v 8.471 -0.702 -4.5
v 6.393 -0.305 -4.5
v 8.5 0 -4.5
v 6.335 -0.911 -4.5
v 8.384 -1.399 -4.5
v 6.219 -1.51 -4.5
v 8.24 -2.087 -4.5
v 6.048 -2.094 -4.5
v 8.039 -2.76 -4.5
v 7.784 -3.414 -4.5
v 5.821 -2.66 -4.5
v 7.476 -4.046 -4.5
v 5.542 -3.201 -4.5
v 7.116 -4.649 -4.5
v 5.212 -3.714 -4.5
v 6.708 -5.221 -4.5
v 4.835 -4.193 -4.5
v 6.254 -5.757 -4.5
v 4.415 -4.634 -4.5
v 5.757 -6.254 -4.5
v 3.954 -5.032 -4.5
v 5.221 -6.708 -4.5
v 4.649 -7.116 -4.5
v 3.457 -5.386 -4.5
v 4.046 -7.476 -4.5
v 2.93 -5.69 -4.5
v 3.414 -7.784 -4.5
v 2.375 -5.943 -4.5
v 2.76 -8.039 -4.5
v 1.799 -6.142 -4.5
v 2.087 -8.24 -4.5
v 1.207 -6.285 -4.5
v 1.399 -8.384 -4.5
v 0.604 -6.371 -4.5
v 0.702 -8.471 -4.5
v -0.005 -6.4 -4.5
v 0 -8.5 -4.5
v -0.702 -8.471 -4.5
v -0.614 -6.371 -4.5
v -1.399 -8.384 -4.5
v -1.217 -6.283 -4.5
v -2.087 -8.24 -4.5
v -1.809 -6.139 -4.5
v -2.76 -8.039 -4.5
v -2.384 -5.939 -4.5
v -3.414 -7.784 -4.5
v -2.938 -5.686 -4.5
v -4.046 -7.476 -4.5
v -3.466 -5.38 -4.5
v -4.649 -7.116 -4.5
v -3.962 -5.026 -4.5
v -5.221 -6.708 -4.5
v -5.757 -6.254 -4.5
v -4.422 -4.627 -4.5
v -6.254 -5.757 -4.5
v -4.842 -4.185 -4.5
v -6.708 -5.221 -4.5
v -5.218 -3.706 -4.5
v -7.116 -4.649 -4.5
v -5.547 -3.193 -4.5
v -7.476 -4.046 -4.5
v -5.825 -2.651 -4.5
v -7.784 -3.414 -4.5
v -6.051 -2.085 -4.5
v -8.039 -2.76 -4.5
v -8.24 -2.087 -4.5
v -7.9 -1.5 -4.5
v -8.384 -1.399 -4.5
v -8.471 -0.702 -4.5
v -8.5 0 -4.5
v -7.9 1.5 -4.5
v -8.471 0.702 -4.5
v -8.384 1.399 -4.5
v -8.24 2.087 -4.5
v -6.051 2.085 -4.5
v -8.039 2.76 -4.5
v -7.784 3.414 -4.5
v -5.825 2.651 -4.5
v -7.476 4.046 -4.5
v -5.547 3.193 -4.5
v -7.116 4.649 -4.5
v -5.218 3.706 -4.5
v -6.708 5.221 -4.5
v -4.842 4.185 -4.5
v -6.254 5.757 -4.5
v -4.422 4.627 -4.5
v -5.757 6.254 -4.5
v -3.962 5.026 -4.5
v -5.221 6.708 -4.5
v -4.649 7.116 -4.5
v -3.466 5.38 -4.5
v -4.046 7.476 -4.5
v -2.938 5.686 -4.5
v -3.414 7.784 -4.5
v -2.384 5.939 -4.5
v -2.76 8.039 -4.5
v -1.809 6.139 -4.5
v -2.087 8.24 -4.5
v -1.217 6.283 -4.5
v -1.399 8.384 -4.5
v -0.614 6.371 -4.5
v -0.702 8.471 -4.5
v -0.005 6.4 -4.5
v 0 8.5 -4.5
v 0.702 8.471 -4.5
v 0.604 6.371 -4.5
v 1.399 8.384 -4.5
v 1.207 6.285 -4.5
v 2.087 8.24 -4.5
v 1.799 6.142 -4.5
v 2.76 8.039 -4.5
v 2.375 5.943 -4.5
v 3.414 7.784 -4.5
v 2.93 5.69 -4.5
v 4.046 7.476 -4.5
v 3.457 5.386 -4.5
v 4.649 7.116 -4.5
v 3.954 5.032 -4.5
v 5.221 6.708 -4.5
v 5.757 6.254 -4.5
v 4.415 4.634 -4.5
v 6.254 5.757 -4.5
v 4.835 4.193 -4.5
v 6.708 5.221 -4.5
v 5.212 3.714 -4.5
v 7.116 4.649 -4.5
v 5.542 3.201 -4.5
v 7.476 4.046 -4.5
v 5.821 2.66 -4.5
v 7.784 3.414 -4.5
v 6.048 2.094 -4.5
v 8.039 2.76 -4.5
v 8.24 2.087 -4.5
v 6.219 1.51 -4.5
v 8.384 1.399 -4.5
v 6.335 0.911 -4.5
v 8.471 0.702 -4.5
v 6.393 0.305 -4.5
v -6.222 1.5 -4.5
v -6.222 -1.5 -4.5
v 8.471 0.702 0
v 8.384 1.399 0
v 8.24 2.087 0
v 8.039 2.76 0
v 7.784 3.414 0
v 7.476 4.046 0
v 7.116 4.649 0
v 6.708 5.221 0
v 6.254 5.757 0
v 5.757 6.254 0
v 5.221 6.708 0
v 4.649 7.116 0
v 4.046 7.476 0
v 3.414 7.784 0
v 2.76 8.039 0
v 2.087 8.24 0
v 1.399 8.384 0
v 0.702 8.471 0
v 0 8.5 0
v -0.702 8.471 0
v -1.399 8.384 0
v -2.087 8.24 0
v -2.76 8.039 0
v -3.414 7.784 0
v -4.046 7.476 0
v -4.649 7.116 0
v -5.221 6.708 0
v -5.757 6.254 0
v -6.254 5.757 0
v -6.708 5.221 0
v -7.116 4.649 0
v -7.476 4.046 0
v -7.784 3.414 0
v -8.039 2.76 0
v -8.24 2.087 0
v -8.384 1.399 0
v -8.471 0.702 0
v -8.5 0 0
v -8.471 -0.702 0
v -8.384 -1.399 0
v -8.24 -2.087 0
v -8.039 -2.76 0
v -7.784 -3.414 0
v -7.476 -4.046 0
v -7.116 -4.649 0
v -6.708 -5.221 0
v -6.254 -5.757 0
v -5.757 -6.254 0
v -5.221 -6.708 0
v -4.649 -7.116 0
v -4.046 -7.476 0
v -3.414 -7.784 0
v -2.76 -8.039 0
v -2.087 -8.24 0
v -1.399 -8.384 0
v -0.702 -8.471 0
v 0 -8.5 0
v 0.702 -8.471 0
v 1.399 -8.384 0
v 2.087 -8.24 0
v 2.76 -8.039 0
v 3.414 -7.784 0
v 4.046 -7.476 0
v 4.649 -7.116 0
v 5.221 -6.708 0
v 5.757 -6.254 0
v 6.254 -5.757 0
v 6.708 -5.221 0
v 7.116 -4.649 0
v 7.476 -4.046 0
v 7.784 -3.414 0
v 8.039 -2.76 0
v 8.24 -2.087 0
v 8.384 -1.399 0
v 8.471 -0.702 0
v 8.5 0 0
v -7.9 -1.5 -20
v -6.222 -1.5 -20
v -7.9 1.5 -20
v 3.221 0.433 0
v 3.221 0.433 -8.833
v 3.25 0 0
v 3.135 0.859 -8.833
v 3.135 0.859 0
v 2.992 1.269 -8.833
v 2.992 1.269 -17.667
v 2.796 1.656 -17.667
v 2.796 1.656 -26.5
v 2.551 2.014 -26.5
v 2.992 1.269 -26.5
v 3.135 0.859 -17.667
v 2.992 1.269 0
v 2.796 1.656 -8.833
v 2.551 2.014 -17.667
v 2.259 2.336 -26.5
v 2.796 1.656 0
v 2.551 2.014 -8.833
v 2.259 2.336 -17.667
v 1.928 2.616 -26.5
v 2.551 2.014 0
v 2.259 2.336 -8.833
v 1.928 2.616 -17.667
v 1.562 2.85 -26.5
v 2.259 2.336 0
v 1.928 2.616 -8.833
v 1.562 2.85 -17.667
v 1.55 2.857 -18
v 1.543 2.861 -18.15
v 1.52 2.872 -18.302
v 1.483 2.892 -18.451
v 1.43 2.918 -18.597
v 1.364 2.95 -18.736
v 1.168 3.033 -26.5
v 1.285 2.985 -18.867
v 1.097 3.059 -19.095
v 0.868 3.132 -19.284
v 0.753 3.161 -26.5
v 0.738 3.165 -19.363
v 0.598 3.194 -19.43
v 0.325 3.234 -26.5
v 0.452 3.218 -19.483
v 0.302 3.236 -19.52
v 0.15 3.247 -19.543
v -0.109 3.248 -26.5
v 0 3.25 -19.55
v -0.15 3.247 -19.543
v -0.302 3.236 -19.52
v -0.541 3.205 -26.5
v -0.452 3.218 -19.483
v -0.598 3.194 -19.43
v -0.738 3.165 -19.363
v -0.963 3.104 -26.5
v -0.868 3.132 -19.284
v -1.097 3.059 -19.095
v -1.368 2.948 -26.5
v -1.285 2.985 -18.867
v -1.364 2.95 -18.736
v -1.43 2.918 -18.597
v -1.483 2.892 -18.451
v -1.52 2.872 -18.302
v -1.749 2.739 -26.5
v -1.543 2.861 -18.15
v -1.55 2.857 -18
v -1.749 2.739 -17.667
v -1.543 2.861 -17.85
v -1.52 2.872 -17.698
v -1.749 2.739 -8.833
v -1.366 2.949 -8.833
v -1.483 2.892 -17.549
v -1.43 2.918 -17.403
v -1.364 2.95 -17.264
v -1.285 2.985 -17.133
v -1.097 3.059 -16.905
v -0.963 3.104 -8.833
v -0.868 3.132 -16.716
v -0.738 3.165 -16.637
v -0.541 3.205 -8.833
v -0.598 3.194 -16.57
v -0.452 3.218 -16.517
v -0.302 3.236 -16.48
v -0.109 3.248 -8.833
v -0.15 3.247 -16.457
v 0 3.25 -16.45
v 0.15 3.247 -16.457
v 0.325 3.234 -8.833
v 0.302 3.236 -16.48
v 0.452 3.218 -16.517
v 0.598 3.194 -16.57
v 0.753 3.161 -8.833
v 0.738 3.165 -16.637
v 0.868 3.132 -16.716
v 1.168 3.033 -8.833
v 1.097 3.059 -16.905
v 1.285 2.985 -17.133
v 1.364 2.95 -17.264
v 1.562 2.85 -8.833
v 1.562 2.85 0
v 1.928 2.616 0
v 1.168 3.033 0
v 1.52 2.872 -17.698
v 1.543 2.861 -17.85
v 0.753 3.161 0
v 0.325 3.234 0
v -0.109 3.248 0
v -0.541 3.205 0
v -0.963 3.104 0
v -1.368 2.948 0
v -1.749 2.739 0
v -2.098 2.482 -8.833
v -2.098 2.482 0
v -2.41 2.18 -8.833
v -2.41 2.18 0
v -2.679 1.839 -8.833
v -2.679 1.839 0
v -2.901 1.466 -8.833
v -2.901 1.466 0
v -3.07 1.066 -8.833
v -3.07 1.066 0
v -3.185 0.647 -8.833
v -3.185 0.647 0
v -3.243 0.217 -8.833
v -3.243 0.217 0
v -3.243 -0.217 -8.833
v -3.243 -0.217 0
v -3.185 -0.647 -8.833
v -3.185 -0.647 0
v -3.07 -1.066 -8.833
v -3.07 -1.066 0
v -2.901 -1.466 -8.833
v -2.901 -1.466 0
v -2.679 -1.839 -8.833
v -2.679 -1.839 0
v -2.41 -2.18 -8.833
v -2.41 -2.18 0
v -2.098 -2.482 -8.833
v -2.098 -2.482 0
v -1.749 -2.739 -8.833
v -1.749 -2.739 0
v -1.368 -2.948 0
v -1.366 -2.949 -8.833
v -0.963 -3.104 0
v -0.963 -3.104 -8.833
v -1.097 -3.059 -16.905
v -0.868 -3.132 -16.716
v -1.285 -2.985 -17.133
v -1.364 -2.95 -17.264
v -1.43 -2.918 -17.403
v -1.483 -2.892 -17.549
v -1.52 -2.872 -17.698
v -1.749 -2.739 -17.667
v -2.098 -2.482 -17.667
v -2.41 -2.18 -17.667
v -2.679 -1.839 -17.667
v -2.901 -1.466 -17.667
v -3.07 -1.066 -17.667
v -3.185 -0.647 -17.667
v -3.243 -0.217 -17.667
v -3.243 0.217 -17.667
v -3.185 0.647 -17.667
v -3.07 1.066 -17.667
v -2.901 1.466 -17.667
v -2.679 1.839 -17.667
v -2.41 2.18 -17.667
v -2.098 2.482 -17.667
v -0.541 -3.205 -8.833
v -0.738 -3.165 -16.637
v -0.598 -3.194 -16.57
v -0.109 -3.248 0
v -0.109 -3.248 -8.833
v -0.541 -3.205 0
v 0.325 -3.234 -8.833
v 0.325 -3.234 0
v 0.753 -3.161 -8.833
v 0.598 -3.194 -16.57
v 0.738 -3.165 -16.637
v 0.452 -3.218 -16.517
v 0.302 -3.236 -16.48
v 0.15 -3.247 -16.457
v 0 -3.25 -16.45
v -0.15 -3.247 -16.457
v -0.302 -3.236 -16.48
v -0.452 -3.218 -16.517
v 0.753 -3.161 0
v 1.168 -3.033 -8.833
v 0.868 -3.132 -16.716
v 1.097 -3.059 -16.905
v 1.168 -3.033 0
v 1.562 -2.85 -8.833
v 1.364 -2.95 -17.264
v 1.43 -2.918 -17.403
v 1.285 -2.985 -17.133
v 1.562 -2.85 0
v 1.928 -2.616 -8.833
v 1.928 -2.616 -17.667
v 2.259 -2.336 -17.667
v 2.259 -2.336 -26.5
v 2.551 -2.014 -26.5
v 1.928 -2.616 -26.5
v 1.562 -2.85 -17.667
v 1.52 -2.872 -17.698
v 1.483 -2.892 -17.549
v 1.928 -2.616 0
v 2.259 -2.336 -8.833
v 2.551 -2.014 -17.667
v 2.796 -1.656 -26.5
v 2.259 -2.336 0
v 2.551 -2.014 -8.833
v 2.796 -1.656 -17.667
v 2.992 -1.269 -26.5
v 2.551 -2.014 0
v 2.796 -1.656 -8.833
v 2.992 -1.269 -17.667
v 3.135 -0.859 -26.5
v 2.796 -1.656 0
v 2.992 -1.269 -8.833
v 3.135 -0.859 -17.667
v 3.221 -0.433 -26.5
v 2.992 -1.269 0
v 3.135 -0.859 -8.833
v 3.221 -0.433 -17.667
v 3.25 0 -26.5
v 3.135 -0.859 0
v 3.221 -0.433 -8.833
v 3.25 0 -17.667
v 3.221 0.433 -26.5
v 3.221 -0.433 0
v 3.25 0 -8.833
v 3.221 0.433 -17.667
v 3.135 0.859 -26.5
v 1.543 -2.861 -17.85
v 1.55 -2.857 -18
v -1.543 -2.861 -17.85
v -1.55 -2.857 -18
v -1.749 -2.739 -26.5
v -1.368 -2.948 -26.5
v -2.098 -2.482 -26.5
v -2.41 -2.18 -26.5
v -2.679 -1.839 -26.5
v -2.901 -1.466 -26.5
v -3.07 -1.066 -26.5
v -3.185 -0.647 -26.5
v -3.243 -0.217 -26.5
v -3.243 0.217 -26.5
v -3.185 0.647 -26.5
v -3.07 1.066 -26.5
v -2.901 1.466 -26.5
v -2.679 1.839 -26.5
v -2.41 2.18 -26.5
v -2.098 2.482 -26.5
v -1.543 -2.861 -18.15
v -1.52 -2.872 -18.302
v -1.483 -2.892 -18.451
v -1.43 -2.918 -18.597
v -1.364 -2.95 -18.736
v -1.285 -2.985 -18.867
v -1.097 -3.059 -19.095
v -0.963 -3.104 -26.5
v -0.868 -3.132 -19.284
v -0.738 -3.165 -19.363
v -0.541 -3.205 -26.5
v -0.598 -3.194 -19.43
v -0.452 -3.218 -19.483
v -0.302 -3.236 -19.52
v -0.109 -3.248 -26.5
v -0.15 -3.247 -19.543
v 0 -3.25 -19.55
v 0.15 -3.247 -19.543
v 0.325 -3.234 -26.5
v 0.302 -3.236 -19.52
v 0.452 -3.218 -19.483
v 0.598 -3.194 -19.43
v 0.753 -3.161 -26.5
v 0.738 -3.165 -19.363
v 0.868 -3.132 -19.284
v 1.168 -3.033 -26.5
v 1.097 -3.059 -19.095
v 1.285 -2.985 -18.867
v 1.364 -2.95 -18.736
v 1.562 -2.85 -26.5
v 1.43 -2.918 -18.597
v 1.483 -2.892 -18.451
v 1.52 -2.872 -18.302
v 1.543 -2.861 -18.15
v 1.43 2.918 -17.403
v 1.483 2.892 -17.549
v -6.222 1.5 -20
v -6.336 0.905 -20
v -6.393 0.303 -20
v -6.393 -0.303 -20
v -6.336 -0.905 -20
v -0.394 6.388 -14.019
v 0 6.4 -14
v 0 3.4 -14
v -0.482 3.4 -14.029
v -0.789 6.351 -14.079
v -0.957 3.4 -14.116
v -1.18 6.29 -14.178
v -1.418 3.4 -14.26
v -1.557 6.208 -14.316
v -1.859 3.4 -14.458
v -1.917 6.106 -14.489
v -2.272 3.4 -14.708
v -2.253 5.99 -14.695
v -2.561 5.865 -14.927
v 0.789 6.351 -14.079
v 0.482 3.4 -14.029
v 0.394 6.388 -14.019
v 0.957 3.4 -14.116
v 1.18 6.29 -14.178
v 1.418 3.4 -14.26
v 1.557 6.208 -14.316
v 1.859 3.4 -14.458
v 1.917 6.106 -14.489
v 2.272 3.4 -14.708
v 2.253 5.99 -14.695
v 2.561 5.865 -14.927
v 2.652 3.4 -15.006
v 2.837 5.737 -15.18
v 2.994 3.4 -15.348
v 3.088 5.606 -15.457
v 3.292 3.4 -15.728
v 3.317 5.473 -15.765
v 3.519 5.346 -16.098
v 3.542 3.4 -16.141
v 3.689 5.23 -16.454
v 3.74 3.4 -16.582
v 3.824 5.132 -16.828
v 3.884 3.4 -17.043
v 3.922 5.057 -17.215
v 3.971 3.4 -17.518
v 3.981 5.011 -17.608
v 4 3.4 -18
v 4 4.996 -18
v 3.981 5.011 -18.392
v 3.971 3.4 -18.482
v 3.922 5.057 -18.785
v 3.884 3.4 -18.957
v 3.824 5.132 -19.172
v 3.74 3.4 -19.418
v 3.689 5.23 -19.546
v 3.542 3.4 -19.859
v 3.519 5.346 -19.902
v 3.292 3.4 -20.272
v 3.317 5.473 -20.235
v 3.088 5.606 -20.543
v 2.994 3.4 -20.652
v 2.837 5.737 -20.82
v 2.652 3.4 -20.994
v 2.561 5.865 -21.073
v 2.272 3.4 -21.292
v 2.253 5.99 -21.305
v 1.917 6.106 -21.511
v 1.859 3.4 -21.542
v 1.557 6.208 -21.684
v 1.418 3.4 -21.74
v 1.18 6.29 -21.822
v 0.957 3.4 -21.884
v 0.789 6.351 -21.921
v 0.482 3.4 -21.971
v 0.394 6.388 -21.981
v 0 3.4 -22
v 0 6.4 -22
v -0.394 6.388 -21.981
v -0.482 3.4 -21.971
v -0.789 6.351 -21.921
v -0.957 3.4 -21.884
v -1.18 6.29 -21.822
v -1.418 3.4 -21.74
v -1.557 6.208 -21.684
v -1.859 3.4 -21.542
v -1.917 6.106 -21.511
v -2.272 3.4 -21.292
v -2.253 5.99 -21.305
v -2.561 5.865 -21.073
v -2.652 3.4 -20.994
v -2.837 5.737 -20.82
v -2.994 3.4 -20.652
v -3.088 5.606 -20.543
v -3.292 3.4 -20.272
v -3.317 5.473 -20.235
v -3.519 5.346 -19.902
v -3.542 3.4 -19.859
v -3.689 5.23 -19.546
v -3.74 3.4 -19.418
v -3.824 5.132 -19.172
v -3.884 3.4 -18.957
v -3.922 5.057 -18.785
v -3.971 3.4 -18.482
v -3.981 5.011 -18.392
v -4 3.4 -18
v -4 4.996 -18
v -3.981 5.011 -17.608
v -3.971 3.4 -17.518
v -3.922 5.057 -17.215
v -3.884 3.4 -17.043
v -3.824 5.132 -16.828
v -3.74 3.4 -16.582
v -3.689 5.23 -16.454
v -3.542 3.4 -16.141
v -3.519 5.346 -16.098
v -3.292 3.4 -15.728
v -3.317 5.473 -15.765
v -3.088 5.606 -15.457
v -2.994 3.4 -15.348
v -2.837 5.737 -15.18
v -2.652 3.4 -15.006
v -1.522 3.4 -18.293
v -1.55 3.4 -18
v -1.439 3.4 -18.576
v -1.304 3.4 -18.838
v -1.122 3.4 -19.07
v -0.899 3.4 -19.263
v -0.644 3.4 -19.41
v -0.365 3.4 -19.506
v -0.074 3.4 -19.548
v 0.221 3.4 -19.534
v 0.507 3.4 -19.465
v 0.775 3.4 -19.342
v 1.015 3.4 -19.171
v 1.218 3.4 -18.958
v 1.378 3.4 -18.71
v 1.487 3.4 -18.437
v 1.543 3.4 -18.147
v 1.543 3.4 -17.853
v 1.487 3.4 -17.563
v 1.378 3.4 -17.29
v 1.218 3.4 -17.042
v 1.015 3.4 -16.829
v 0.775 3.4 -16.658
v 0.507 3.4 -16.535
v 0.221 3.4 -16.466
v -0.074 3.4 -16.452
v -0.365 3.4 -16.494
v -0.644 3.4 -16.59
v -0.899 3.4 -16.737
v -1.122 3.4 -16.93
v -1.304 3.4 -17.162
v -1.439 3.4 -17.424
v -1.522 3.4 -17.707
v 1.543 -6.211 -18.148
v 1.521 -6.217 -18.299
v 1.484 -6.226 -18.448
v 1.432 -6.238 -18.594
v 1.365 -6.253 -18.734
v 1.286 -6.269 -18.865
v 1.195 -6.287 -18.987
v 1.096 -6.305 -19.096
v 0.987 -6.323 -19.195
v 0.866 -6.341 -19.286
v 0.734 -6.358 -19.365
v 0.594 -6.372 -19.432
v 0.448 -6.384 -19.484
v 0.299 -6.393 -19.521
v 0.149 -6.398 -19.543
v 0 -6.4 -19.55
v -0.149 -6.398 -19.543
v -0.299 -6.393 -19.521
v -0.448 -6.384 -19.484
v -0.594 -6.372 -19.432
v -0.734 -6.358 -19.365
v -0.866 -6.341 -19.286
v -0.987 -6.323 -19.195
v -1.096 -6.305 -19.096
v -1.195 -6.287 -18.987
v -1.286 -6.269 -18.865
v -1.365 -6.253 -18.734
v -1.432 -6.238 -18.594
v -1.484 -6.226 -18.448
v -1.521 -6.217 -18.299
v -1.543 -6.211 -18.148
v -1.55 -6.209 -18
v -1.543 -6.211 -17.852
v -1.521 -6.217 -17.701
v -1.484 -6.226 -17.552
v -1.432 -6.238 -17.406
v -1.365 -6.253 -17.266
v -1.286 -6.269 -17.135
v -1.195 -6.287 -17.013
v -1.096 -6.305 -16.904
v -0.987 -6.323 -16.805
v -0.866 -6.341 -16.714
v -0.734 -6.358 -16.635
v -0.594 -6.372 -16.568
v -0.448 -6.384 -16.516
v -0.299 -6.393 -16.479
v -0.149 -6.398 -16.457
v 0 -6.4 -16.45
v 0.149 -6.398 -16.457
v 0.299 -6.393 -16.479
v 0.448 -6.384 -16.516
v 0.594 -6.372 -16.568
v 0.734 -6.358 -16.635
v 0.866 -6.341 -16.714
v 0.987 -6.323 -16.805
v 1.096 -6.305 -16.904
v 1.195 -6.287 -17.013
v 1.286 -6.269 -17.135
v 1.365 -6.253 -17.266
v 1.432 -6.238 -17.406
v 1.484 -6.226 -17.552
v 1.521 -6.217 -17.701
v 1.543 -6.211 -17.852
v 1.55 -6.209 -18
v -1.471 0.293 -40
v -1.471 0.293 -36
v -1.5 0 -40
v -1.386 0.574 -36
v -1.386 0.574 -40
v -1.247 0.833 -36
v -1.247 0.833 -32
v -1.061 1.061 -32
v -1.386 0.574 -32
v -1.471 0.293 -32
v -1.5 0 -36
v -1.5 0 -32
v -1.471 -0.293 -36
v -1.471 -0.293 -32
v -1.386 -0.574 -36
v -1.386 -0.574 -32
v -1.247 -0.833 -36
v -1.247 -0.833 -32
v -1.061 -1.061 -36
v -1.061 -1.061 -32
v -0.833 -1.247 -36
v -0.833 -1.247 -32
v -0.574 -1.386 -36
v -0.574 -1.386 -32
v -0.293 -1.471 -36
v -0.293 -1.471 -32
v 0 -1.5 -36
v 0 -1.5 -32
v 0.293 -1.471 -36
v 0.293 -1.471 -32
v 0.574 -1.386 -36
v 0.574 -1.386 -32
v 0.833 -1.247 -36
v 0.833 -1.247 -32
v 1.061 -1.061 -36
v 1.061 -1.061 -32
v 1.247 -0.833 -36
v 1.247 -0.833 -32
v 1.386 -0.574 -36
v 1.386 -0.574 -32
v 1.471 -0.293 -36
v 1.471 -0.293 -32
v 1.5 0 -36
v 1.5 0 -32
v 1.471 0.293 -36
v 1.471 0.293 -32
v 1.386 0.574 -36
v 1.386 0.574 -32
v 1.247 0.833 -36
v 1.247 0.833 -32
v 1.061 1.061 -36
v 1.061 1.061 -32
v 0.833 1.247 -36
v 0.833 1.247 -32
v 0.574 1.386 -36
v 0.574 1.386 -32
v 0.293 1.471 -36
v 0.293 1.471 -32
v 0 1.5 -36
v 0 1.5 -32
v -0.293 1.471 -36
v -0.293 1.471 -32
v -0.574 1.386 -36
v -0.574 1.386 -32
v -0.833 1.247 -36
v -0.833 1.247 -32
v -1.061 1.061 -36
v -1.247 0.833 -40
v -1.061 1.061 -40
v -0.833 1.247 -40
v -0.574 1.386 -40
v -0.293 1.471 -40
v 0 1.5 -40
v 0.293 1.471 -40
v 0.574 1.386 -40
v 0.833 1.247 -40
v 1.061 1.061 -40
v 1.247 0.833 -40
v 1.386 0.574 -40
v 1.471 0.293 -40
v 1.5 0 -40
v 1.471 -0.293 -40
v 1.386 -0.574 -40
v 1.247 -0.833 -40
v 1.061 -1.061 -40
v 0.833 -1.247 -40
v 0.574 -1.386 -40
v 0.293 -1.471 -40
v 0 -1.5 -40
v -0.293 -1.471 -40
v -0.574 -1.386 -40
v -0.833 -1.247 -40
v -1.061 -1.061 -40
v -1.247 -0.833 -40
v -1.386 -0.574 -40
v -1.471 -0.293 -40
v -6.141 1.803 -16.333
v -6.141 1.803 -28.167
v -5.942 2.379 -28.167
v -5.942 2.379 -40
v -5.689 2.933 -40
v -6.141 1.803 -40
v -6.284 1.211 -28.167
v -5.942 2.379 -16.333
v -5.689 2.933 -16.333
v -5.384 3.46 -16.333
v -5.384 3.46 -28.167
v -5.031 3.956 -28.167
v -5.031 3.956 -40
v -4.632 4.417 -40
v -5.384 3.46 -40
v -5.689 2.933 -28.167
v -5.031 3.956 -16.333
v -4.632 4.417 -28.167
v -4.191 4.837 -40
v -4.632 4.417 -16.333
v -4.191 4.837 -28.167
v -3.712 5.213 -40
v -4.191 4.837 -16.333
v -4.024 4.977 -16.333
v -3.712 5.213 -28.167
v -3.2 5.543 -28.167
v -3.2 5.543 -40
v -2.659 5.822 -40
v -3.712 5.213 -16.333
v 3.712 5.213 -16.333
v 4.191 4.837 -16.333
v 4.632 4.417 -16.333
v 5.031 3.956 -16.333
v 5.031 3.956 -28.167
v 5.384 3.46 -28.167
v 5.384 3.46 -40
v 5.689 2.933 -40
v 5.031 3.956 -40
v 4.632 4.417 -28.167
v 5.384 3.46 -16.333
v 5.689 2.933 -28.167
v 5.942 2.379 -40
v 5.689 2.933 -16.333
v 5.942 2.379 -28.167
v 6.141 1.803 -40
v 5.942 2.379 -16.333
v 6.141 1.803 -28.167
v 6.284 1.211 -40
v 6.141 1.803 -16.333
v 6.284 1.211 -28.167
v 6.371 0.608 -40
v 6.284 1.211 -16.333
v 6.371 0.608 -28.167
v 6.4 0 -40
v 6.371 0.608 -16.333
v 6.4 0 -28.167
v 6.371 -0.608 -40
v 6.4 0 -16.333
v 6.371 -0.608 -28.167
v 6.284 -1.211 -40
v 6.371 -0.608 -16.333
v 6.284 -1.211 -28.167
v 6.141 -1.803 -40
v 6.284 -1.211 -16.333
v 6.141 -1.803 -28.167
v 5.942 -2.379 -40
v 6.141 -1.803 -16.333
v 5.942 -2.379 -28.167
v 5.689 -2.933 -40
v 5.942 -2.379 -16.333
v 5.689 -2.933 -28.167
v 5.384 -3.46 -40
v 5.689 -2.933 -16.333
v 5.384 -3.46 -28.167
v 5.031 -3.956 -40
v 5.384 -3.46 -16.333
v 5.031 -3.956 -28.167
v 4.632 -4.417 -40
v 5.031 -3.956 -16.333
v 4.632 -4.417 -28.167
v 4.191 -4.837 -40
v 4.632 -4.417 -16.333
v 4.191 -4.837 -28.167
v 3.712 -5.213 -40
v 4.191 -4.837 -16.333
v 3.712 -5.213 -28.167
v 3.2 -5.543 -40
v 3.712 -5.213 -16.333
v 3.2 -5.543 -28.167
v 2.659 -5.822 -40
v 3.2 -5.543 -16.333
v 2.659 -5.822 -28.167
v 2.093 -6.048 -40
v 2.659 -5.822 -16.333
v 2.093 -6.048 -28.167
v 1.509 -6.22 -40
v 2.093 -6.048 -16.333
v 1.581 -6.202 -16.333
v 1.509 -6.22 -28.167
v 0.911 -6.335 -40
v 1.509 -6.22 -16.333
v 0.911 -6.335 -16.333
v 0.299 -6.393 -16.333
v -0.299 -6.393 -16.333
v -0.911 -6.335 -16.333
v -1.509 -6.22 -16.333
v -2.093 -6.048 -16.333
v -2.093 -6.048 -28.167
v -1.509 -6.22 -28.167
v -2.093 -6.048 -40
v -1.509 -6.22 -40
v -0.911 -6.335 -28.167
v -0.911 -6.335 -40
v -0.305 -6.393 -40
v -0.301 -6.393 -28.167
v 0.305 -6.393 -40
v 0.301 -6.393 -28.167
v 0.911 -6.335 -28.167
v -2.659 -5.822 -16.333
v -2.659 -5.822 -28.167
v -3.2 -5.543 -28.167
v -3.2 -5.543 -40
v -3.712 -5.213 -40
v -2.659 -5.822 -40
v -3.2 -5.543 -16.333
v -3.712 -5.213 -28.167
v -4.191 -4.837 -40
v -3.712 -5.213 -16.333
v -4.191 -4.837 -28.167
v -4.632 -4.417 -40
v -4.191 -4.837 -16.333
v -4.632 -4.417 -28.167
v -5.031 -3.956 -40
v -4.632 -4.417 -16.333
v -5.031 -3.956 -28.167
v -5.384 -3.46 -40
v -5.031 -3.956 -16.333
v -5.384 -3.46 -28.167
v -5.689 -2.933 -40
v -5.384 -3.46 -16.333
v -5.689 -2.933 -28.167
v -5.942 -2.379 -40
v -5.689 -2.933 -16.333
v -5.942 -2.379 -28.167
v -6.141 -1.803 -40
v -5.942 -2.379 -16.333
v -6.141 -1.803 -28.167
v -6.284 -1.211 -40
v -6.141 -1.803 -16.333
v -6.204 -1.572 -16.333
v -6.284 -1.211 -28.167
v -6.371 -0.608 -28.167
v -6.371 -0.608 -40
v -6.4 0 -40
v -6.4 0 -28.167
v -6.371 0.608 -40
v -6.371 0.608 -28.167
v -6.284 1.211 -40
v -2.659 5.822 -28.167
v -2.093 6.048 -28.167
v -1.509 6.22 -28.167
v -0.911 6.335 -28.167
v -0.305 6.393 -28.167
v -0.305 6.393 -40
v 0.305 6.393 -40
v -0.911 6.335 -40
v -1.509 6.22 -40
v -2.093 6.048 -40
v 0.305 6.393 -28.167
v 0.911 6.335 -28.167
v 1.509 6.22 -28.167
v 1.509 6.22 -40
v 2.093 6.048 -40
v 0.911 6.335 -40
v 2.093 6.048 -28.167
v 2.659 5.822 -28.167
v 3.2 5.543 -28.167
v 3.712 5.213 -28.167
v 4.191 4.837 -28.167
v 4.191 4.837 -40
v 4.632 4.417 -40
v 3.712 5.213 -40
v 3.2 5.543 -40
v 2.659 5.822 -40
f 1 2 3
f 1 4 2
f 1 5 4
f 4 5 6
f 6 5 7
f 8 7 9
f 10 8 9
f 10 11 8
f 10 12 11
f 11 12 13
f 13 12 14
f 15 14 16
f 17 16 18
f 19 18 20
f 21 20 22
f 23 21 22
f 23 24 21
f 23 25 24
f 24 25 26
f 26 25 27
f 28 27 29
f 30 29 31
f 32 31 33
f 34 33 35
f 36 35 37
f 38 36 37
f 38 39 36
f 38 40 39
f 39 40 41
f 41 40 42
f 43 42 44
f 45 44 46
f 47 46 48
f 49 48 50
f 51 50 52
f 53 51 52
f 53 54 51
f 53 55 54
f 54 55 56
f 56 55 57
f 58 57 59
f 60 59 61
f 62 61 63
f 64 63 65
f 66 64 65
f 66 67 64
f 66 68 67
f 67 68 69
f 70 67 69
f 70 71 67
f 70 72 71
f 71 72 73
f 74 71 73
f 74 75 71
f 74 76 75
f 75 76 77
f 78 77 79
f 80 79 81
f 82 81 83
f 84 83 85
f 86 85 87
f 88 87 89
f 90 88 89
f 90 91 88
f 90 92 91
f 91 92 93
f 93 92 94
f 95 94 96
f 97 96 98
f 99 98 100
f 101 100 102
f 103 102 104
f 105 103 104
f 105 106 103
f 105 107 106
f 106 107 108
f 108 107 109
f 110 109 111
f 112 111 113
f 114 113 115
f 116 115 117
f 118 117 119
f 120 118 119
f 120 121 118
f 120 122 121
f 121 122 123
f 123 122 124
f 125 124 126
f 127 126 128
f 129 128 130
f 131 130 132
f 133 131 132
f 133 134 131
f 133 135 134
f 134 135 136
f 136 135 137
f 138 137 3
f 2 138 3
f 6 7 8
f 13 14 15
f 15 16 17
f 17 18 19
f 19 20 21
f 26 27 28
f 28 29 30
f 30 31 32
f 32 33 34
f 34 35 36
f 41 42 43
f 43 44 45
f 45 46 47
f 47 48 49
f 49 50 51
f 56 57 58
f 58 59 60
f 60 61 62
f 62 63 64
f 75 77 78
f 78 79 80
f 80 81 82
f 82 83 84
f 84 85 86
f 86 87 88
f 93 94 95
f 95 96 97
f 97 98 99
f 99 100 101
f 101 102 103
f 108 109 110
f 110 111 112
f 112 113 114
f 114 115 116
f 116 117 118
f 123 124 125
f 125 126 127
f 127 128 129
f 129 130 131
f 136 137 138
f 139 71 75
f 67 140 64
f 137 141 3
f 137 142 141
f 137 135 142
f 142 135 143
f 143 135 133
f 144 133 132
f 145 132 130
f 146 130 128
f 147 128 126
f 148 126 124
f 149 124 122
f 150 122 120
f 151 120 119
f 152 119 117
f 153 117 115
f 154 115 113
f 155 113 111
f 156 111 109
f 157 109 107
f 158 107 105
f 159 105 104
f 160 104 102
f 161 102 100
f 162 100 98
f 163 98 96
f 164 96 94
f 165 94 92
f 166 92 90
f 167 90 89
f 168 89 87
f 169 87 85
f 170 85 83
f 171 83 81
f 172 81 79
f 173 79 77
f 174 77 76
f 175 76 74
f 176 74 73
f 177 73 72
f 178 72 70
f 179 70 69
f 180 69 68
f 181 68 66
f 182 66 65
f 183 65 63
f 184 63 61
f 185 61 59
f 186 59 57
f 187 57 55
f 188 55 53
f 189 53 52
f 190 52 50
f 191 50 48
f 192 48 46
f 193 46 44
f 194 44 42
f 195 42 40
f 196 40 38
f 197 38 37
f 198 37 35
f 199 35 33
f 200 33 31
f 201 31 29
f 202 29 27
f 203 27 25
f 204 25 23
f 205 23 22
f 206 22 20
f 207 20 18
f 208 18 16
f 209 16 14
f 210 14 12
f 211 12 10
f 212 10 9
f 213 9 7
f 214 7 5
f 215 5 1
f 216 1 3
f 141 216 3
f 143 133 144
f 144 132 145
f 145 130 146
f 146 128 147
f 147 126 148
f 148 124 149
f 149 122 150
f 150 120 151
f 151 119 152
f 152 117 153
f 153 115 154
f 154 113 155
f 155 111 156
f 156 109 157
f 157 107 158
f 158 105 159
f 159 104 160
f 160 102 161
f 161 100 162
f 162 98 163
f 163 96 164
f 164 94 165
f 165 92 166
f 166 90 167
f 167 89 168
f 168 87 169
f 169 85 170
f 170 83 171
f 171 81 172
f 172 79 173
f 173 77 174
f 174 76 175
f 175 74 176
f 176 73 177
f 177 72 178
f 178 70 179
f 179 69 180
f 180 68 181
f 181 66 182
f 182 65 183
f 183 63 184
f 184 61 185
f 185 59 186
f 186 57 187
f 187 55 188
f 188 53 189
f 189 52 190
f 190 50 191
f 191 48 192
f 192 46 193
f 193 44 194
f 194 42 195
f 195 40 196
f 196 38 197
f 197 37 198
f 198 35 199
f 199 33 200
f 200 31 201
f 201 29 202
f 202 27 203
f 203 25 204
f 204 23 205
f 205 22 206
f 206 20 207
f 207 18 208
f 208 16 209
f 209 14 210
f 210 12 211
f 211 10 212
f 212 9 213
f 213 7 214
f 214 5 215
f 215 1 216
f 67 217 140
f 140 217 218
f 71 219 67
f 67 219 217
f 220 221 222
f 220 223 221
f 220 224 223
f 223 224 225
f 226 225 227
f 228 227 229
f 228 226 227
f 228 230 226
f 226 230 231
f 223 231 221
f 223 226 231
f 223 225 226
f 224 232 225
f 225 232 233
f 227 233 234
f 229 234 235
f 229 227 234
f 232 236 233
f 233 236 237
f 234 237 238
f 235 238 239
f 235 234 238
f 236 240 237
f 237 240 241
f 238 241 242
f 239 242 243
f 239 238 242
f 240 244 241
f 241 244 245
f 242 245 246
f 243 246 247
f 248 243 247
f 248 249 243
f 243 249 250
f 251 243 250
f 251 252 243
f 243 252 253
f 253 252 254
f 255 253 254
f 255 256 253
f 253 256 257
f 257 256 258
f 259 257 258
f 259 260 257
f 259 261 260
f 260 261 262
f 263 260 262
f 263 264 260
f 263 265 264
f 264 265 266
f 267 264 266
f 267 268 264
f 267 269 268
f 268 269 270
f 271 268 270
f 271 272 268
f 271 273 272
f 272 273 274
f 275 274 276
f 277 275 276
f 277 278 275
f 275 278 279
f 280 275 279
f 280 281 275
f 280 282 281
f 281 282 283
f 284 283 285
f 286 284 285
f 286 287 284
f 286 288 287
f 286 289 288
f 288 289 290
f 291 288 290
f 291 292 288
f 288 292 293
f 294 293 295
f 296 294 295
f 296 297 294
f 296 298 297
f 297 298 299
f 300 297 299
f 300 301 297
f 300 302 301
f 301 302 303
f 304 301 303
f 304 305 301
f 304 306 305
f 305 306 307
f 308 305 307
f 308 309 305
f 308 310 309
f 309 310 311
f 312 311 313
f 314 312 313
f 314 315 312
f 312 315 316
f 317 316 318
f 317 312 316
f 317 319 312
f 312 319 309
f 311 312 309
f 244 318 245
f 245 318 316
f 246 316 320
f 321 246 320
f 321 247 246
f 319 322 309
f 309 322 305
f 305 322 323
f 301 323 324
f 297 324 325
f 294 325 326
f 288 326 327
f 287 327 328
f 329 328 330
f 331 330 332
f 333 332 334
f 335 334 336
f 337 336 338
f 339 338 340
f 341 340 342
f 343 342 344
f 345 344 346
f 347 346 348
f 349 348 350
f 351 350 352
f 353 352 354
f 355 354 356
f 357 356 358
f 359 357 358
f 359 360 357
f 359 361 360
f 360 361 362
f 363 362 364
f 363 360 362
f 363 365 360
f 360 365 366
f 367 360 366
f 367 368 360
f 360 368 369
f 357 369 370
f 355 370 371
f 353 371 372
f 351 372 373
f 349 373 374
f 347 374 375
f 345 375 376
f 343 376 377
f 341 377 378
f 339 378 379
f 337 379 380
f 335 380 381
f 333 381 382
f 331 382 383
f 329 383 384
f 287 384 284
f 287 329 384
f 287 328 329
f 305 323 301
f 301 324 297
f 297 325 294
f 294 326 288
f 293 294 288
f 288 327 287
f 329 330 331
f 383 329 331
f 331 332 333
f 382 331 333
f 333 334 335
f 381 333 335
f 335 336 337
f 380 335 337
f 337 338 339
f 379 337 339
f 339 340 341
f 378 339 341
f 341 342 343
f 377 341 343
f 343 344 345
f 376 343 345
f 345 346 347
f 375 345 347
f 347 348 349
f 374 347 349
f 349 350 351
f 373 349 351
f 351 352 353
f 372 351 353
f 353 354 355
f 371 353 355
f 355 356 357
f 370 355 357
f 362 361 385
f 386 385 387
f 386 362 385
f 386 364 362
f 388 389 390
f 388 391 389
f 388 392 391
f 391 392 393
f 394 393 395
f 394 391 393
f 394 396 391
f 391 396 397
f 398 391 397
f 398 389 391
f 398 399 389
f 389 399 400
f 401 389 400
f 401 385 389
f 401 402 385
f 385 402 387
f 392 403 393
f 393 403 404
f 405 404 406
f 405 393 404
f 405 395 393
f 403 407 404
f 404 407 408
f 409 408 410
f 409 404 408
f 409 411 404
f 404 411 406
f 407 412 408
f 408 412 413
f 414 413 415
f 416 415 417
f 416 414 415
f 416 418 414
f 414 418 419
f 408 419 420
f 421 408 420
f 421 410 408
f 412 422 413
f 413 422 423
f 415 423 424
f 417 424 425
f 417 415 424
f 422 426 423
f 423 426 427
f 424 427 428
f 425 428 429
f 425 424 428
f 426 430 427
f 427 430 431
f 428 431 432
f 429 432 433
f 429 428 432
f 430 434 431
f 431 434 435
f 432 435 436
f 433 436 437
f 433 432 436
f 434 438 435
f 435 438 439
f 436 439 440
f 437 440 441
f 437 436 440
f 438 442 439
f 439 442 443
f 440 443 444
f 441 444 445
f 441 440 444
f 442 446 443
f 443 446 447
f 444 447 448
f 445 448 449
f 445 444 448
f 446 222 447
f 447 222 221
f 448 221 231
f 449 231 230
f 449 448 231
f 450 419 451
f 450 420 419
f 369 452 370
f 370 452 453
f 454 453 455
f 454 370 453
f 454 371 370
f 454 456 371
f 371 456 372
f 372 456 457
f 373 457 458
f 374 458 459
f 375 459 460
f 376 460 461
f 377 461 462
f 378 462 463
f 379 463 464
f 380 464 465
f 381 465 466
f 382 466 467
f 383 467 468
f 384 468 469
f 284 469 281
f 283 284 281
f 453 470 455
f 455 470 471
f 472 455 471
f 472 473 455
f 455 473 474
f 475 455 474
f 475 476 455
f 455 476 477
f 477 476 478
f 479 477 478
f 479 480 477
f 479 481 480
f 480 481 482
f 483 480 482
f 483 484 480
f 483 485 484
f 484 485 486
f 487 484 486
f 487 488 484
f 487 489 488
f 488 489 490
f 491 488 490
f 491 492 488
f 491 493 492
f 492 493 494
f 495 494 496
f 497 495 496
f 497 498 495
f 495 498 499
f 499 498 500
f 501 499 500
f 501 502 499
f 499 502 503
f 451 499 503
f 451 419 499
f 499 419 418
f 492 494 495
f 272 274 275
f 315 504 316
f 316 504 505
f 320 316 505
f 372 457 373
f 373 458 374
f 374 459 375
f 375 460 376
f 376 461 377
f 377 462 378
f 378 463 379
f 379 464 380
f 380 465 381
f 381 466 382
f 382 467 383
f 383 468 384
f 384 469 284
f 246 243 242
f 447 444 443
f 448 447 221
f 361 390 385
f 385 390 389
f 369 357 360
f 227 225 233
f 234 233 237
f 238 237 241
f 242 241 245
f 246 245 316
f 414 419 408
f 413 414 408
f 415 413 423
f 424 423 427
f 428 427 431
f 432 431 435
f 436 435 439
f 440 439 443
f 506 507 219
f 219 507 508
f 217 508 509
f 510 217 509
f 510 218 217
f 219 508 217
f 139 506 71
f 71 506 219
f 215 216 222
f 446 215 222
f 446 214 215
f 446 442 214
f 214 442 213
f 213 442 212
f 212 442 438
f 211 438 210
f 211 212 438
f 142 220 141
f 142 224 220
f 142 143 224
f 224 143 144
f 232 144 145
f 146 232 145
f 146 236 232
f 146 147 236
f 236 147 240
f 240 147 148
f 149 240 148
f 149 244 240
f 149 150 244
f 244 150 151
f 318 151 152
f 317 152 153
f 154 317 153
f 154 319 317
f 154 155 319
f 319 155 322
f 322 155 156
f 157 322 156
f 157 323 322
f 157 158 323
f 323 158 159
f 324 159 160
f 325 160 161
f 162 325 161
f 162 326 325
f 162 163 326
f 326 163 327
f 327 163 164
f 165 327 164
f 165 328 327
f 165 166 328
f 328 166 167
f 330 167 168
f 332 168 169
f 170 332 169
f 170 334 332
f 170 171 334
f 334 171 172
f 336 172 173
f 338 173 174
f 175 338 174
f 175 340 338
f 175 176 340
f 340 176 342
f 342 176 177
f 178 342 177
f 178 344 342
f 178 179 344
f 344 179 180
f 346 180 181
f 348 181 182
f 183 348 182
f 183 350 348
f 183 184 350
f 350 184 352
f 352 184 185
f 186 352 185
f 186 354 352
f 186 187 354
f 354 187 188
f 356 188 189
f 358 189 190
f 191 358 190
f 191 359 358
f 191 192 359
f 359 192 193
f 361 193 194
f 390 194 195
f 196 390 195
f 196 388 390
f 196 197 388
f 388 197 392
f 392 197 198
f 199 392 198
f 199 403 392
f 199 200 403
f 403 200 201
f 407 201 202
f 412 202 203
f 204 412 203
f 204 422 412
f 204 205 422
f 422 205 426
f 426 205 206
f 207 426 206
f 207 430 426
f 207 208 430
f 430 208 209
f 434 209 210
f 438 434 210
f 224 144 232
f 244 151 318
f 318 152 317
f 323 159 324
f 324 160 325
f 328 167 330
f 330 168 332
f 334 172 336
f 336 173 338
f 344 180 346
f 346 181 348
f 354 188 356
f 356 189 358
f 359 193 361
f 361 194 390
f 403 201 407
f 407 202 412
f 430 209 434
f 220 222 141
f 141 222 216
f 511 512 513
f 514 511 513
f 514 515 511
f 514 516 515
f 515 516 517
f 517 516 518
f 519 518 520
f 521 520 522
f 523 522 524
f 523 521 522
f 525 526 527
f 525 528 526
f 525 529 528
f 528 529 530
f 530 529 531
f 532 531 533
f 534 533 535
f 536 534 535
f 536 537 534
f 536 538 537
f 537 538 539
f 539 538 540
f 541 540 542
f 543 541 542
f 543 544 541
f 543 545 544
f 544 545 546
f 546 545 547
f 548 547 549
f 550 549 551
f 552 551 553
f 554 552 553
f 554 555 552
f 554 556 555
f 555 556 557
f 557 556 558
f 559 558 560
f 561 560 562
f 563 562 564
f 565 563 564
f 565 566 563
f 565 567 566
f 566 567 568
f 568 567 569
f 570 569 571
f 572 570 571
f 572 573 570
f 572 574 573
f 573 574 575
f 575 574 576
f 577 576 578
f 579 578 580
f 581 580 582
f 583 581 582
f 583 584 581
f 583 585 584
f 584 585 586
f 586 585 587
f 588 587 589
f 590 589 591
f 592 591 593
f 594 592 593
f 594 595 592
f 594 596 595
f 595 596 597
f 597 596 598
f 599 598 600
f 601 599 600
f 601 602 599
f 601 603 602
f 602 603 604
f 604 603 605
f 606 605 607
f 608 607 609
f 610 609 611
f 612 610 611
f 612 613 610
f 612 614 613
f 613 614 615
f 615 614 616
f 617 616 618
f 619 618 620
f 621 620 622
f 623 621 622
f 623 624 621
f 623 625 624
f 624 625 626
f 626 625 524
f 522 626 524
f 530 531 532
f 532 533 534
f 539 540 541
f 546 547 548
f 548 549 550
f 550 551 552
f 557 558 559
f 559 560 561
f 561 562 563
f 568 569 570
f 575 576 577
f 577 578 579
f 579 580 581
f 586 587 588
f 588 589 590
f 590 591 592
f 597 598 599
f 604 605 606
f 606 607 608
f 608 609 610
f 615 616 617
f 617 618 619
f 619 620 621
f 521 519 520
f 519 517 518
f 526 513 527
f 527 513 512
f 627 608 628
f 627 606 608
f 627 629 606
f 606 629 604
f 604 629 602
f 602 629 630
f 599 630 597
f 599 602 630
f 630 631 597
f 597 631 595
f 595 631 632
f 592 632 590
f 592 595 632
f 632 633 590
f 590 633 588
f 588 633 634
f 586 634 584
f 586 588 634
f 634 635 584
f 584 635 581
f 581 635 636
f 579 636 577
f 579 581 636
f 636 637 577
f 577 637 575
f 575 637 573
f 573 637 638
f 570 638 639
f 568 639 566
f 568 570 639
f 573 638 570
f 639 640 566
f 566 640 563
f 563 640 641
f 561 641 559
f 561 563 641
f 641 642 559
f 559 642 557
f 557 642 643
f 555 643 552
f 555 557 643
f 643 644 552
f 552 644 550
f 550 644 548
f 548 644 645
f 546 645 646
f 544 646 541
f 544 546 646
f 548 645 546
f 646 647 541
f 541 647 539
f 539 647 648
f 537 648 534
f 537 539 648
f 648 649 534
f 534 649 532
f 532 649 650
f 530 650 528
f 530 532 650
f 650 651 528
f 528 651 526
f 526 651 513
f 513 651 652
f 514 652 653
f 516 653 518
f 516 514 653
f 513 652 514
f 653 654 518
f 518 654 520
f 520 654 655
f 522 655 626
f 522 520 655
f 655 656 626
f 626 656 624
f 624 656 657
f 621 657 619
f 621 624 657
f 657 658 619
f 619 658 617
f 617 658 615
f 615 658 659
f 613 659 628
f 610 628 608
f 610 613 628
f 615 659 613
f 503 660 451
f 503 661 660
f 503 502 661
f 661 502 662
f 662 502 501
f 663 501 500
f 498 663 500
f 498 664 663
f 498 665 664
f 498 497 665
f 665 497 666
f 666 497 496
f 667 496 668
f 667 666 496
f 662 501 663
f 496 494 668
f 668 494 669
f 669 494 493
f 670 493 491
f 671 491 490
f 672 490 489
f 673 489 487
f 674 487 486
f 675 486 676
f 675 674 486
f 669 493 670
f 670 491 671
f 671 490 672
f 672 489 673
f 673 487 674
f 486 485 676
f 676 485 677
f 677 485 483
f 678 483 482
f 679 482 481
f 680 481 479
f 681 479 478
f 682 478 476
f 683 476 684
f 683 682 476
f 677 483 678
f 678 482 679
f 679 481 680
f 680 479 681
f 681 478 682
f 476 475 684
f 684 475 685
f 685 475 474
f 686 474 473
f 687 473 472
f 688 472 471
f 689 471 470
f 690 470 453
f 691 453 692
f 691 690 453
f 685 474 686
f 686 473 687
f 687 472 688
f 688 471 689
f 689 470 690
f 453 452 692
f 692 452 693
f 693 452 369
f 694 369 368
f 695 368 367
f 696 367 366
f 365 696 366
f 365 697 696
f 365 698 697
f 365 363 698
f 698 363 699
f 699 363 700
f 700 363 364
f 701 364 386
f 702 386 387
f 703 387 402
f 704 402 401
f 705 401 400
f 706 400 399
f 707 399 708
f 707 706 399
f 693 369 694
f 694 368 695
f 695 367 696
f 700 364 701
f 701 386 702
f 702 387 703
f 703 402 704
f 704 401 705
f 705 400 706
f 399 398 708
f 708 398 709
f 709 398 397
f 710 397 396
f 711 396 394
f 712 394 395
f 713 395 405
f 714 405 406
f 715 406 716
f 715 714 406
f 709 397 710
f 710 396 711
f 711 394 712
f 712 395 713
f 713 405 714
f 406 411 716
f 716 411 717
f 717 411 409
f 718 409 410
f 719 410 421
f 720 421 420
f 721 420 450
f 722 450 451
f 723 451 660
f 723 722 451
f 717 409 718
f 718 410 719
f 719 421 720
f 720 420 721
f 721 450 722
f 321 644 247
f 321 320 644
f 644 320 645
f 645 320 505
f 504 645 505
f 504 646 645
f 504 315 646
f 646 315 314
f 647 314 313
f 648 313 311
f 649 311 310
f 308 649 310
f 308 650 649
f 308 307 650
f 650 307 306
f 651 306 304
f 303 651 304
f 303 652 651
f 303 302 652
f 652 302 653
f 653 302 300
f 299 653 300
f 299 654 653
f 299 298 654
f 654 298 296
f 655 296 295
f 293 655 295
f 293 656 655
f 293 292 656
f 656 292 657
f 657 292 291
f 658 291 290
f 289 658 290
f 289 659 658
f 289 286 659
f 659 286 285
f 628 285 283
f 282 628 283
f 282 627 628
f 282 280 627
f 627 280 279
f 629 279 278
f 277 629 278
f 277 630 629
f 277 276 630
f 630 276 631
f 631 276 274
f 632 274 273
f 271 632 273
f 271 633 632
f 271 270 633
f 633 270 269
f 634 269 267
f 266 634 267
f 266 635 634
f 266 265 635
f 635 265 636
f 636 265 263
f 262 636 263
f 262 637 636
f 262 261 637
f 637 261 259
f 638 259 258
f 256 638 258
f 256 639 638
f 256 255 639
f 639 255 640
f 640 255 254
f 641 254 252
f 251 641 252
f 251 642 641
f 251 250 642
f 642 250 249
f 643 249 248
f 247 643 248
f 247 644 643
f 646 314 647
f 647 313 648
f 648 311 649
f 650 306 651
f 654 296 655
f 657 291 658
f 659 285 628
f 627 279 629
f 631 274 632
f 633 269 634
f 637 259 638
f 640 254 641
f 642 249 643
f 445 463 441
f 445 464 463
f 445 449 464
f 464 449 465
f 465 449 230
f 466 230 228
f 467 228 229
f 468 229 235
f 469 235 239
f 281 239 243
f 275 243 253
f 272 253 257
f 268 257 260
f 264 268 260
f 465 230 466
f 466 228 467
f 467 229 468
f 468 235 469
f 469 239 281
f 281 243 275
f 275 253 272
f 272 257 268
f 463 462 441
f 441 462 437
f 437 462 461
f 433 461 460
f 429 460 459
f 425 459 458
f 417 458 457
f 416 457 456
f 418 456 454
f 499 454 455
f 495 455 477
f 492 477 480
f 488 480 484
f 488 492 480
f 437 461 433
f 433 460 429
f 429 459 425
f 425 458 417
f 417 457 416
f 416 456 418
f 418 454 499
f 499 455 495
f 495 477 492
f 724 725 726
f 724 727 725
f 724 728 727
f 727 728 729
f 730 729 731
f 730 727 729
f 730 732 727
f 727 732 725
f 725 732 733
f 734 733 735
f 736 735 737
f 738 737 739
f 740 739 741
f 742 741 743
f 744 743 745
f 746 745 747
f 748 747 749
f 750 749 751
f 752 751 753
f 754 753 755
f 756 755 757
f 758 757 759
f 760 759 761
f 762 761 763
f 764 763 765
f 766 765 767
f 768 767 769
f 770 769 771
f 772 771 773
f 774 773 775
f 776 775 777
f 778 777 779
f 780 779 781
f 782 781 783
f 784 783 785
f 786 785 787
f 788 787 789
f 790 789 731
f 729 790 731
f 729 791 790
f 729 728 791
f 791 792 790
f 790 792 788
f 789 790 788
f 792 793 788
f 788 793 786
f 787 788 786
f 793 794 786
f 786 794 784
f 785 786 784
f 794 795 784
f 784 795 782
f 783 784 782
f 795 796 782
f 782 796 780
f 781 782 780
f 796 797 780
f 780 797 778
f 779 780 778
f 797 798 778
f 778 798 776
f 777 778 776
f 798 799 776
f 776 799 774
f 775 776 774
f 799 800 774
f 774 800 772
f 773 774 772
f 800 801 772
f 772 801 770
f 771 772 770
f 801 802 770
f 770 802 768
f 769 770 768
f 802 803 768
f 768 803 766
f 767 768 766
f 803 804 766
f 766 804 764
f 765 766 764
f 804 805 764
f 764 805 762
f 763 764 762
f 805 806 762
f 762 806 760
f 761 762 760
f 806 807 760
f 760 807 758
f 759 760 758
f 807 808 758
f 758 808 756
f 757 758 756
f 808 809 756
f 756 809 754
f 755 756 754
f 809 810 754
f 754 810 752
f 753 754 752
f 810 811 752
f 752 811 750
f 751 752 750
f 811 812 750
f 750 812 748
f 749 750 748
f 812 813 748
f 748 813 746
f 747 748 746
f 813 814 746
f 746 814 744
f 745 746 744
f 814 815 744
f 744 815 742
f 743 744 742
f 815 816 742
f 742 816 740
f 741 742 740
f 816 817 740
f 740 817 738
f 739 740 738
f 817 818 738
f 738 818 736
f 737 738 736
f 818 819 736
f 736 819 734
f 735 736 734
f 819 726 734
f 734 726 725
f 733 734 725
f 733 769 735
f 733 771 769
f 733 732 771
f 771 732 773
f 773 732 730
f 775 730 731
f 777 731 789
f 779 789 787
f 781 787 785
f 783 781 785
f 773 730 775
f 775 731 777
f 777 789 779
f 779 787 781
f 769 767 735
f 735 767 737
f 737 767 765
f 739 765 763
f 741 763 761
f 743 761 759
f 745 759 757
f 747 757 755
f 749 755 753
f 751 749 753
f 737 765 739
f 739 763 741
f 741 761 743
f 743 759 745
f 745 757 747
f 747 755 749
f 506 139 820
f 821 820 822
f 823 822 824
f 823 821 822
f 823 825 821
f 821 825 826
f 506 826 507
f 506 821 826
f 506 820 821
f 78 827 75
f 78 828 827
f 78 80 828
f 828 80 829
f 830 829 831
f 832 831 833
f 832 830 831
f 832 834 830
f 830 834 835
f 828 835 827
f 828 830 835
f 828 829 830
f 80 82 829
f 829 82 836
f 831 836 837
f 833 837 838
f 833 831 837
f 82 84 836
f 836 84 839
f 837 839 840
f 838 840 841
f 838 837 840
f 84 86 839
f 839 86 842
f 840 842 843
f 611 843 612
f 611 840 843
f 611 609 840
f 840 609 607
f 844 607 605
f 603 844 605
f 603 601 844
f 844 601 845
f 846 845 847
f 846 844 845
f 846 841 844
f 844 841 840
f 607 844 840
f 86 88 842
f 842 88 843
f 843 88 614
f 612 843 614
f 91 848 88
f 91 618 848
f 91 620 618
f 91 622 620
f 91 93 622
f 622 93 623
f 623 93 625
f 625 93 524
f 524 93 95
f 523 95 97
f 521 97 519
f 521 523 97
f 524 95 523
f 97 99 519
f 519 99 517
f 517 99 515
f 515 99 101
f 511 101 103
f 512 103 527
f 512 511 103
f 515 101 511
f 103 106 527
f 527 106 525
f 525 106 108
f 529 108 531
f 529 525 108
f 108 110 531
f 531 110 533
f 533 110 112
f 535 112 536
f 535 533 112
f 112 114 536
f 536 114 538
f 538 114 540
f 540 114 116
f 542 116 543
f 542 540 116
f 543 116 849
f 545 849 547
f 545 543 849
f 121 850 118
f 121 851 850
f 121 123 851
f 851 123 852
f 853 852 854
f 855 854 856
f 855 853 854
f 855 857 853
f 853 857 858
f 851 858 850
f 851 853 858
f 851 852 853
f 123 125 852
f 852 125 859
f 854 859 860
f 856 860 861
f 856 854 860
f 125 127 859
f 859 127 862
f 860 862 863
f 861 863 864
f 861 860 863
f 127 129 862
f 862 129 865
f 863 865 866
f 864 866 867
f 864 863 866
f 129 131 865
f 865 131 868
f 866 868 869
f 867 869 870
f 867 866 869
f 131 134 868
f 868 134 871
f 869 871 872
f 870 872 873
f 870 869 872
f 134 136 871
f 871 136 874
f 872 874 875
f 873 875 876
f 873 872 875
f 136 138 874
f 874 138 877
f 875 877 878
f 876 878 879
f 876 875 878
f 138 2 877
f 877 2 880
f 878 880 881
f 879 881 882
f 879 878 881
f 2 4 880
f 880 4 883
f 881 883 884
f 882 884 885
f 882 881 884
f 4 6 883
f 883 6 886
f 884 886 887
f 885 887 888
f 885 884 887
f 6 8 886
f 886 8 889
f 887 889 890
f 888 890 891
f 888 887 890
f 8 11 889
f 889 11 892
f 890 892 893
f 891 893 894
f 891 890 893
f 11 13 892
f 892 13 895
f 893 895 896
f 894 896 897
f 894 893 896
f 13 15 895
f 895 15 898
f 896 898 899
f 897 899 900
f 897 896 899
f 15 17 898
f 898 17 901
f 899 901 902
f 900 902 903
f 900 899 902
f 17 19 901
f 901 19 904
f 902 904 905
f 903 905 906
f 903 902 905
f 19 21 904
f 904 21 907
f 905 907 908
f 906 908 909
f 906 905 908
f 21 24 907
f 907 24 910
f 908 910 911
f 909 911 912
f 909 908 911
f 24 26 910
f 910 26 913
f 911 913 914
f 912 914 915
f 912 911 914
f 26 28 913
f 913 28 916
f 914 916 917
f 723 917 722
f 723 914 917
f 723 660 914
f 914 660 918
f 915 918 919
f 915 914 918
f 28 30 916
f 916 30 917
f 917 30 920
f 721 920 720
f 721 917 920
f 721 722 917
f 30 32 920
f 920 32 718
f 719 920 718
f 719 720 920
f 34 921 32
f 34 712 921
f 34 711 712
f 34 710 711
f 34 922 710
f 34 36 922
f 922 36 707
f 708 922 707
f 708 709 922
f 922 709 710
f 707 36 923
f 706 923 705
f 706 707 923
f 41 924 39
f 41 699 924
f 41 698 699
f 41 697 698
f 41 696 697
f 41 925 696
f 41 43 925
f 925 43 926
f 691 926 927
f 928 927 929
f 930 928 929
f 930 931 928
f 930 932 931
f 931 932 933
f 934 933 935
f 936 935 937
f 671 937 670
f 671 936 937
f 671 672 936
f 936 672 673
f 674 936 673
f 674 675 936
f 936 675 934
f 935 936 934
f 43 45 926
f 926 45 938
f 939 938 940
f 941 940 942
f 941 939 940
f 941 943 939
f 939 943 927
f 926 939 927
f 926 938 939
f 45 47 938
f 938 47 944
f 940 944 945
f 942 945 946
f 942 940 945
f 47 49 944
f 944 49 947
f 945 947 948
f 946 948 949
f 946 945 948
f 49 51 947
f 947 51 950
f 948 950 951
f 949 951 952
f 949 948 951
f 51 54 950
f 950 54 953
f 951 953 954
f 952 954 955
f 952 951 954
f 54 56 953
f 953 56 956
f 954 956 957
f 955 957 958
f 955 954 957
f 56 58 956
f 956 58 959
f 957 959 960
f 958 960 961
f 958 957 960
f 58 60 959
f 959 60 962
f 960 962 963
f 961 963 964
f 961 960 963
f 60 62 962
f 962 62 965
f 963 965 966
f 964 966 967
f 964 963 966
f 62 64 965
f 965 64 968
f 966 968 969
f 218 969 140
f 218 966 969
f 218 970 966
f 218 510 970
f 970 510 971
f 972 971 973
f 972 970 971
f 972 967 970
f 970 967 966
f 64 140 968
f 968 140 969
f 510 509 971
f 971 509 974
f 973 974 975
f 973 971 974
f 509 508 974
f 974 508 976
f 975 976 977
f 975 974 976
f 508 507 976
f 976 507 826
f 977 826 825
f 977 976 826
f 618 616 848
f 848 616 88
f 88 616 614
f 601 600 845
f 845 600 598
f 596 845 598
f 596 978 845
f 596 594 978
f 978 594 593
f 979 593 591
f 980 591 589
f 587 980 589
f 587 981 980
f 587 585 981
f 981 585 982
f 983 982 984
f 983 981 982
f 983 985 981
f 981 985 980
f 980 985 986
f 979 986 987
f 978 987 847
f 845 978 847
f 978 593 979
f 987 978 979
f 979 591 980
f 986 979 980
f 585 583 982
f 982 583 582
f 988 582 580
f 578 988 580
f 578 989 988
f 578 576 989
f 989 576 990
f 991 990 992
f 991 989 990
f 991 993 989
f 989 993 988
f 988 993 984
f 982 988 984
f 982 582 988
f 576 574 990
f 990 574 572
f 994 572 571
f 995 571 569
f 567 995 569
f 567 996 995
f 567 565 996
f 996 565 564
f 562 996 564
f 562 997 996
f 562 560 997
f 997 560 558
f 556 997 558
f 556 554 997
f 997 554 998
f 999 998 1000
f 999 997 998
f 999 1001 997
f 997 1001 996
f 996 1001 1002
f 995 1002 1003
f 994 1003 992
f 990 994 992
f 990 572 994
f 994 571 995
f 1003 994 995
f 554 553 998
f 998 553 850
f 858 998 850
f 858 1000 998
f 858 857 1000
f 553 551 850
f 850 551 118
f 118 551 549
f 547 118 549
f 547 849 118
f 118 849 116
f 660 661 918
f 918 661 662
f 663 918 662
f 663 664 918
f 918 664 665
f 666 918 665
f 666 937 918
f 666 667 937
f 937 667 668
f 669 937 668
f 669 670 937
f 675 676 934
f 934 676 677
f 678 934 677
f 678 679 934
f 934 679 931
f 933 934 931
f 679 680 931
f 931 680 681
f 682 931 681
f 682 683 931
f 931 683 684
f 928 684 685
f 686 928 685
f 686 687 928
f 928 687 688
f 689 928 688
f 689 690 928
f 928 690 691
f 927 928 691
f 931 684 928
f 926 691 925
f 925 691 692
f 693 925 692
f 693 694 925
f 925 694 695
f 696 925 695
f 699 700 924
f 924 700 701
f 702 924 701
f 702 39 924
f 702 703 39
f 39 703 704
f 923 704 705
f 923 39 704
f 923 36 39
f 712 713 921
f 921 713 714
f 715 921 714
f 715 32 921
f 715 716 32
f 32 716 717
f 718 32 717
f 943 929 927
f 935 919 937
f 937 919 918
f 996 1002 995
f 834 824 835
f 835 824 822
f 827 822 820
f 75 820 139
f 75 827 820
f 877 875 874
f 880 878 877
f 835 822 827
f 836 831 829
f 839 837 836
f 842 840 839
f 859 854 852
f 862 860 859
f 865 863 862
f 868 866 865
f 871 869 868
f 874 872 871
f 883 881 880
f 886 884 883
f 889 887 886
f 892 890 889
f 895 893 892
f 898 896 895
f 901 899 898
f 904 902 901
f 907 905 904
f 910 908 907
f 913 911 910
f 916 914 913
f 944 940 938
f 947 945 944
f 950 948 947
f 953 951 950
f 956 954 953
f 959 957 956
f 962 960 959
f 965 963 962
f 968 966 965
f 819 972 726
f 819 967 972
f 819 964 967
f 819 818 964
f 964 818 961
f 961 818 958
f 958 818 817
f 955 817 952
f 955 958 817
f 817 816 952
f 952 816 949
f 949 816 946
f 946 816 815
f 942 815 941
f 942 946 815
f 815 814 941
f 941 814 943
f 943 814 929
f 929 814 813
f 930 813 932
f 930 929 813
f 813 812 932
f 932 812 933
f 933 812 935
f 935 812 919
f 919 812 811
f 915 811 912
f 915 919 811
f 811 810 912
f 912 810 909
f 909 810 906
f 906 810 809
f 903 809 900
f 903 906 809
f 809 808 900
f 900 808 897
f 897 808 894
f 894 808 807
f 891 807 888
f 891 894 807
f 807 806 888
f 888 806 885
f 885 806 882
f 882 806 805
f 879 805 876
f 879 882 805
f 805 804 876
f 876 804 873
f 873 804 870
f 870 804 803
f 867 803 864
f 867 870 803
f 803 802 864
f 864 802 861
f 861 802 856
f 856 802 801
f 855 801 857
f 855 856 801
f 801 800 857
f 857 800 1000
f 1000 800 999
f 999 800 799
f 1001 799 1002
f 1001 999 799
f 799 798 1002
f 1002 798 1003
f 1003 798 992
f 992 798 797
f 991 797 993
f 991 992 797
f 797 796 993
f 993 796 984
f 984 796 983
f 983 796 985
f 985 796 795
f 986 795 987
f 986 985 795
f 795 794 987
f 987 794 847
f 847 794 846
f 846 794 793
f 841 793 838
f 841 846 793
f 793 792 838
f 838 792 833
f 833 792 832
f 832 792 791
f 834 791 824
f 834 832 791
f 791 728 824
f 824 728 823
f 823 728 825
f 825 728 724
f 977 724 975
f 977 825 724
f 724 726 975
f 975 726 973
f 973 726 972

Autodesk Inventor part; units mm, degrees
ref_plane "YZ Plane" through (0, 0, 0) normal (1, 0, 0) x (0, 1, 0)
ref_plane "XZ Plane" through (0, 0, 0) normal (0, 1, 0) x (-1, 0, 0)
sketch "Sketch1" plane through (0, 0, 0) normal (0, 1, 0) x (-1, 0, 0)
  line L0 (0, -40) -> (0, 0)
  line L1 (0, 0) -> (0, -18)
  circle A0 centre (0, -18) radius 1.55
  line L2 (0, -18) -> (0, -26.5)
  line L3 (0, -40) -> (0, -32)
  line L4 (0, -32) -> (1.5, -32)
  line L5 (1.5, -32) -> (1.5, -40)
  line L6 (0, 0) -> (6.4, 0)
  line L7 (6.4, 0) -> (6.4, -40)
  line L8 (6.4, -40) -> (1.5, -40)
  line L9 (6.4, -40) -> (7.9, -40)
  line L10 (7.9, -40) -> (7.9, 0)
  line L11 (7.9, 0) -> (6.4, 0)
  line L12 (6.4, 0) -> (4.9, 0)
  line L13 (4.9, 0) -> (4.9, -40)
  line L14 (4.9, -40) -> (6.4, -40)
  line L15 (0, 0) -> (3.15, 0)
  line L16 (3.15, 0) -> (3.15, -26.5)
  line L17 (3.15, -26.5) -> (0, -26.5)
  line L18 (7.9, 0) -> (7.9, -20)
  line L19 (7.9, -20) -> (6.4, -20)
  line L20 (6.4, -20) -> (4.9, -20)
  dimension "d3" = 18
  dimension "d4" = 3.1
  dimension "d5" = 8.5
  dimension "d6" = 8
  dimension "d7" = 1.5
  dimension "d22" = 6.4
  dimension "d27" = 1.5
  dimension "d28" = 1.5
  dimension "d35" = 3.15
  dimension "d45" = 20
revolve "Revolution3" add sketch "Sketch1" angle 360 about axis through (0, 0, 0) along (0, 0, -1) contours L0 L17 L16 L6 L13 L8 L5 L4 | L13 L20 L7 L8 | L6 L7 L20 L13
extrude "Extrusion8" cut sketch "Sketch1" along normal mid plane 15 contours A0 L0 | L0 A0
ref_plane "Work Plane3" through (0, 6.4, -20) normal (0, 1, 0) x (-1, 0, 0)
sketch "Sketch4" plane through (0, 6.4, -20) normal (0, 1, 0) x (-1, 0, 0)
  line L0 (0, 20) -> (0, 2)
  circle A0 centre (0, 2) radius 4
  dimension "d41" = 18
  dimension "d42" = 8
extrude "Extrusion9" cut sketch "Sketch4" against normal blind 3
extrude "Extrusion10" add sketch "Sketch1" along normal mid plane 3 contours L6 L7 L20 L13 | L11 L10 L19 L7
sketch "Sketch5" plane through (-7.9, 1.5, 0) normal (0, 0, 1) x (1, 0, 0)
  circle A0 centre (7.9, -1.5) radius 3.25
  circle A1 centre (7.9, -1.5) radius 1.5 projected
  circle A2 centre (7.9, -1.5) radius 8.5
  dimension "d48" = 6.5
  dimension "d51" = 17
extrude "Extrusion11" cut sketch "Sketch5" against normal blind 26.5 contours A0 | A1
extrude "Extrusion12" add sketch "Sketch5" against normal blind 4.5 contours A2
properties part number "dc_to_omni_coupler"
